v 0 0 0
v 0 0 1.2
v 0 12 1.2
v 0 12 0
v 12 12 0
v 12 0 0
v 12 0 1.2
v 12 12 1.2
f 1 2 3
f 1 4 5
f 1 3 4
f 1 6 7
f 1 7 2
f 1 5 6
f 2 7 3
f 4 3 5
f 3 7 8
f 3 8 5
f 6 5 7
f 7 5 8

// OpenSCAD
/* Warning, this is a very basic generator with a lot of approximation 
input data : [TFBGA, AGA, 12x12x1.2mm, 206, , A, C04-01192A]
generated by com.zoubworld.electronics.cad.model3d.Basic
Date : Sun Feb 15 10:50:49 CET 2026
*/

//body
color("black")
translate([0,0,0])
cube([12.0,12.0,1.2], center=false);
